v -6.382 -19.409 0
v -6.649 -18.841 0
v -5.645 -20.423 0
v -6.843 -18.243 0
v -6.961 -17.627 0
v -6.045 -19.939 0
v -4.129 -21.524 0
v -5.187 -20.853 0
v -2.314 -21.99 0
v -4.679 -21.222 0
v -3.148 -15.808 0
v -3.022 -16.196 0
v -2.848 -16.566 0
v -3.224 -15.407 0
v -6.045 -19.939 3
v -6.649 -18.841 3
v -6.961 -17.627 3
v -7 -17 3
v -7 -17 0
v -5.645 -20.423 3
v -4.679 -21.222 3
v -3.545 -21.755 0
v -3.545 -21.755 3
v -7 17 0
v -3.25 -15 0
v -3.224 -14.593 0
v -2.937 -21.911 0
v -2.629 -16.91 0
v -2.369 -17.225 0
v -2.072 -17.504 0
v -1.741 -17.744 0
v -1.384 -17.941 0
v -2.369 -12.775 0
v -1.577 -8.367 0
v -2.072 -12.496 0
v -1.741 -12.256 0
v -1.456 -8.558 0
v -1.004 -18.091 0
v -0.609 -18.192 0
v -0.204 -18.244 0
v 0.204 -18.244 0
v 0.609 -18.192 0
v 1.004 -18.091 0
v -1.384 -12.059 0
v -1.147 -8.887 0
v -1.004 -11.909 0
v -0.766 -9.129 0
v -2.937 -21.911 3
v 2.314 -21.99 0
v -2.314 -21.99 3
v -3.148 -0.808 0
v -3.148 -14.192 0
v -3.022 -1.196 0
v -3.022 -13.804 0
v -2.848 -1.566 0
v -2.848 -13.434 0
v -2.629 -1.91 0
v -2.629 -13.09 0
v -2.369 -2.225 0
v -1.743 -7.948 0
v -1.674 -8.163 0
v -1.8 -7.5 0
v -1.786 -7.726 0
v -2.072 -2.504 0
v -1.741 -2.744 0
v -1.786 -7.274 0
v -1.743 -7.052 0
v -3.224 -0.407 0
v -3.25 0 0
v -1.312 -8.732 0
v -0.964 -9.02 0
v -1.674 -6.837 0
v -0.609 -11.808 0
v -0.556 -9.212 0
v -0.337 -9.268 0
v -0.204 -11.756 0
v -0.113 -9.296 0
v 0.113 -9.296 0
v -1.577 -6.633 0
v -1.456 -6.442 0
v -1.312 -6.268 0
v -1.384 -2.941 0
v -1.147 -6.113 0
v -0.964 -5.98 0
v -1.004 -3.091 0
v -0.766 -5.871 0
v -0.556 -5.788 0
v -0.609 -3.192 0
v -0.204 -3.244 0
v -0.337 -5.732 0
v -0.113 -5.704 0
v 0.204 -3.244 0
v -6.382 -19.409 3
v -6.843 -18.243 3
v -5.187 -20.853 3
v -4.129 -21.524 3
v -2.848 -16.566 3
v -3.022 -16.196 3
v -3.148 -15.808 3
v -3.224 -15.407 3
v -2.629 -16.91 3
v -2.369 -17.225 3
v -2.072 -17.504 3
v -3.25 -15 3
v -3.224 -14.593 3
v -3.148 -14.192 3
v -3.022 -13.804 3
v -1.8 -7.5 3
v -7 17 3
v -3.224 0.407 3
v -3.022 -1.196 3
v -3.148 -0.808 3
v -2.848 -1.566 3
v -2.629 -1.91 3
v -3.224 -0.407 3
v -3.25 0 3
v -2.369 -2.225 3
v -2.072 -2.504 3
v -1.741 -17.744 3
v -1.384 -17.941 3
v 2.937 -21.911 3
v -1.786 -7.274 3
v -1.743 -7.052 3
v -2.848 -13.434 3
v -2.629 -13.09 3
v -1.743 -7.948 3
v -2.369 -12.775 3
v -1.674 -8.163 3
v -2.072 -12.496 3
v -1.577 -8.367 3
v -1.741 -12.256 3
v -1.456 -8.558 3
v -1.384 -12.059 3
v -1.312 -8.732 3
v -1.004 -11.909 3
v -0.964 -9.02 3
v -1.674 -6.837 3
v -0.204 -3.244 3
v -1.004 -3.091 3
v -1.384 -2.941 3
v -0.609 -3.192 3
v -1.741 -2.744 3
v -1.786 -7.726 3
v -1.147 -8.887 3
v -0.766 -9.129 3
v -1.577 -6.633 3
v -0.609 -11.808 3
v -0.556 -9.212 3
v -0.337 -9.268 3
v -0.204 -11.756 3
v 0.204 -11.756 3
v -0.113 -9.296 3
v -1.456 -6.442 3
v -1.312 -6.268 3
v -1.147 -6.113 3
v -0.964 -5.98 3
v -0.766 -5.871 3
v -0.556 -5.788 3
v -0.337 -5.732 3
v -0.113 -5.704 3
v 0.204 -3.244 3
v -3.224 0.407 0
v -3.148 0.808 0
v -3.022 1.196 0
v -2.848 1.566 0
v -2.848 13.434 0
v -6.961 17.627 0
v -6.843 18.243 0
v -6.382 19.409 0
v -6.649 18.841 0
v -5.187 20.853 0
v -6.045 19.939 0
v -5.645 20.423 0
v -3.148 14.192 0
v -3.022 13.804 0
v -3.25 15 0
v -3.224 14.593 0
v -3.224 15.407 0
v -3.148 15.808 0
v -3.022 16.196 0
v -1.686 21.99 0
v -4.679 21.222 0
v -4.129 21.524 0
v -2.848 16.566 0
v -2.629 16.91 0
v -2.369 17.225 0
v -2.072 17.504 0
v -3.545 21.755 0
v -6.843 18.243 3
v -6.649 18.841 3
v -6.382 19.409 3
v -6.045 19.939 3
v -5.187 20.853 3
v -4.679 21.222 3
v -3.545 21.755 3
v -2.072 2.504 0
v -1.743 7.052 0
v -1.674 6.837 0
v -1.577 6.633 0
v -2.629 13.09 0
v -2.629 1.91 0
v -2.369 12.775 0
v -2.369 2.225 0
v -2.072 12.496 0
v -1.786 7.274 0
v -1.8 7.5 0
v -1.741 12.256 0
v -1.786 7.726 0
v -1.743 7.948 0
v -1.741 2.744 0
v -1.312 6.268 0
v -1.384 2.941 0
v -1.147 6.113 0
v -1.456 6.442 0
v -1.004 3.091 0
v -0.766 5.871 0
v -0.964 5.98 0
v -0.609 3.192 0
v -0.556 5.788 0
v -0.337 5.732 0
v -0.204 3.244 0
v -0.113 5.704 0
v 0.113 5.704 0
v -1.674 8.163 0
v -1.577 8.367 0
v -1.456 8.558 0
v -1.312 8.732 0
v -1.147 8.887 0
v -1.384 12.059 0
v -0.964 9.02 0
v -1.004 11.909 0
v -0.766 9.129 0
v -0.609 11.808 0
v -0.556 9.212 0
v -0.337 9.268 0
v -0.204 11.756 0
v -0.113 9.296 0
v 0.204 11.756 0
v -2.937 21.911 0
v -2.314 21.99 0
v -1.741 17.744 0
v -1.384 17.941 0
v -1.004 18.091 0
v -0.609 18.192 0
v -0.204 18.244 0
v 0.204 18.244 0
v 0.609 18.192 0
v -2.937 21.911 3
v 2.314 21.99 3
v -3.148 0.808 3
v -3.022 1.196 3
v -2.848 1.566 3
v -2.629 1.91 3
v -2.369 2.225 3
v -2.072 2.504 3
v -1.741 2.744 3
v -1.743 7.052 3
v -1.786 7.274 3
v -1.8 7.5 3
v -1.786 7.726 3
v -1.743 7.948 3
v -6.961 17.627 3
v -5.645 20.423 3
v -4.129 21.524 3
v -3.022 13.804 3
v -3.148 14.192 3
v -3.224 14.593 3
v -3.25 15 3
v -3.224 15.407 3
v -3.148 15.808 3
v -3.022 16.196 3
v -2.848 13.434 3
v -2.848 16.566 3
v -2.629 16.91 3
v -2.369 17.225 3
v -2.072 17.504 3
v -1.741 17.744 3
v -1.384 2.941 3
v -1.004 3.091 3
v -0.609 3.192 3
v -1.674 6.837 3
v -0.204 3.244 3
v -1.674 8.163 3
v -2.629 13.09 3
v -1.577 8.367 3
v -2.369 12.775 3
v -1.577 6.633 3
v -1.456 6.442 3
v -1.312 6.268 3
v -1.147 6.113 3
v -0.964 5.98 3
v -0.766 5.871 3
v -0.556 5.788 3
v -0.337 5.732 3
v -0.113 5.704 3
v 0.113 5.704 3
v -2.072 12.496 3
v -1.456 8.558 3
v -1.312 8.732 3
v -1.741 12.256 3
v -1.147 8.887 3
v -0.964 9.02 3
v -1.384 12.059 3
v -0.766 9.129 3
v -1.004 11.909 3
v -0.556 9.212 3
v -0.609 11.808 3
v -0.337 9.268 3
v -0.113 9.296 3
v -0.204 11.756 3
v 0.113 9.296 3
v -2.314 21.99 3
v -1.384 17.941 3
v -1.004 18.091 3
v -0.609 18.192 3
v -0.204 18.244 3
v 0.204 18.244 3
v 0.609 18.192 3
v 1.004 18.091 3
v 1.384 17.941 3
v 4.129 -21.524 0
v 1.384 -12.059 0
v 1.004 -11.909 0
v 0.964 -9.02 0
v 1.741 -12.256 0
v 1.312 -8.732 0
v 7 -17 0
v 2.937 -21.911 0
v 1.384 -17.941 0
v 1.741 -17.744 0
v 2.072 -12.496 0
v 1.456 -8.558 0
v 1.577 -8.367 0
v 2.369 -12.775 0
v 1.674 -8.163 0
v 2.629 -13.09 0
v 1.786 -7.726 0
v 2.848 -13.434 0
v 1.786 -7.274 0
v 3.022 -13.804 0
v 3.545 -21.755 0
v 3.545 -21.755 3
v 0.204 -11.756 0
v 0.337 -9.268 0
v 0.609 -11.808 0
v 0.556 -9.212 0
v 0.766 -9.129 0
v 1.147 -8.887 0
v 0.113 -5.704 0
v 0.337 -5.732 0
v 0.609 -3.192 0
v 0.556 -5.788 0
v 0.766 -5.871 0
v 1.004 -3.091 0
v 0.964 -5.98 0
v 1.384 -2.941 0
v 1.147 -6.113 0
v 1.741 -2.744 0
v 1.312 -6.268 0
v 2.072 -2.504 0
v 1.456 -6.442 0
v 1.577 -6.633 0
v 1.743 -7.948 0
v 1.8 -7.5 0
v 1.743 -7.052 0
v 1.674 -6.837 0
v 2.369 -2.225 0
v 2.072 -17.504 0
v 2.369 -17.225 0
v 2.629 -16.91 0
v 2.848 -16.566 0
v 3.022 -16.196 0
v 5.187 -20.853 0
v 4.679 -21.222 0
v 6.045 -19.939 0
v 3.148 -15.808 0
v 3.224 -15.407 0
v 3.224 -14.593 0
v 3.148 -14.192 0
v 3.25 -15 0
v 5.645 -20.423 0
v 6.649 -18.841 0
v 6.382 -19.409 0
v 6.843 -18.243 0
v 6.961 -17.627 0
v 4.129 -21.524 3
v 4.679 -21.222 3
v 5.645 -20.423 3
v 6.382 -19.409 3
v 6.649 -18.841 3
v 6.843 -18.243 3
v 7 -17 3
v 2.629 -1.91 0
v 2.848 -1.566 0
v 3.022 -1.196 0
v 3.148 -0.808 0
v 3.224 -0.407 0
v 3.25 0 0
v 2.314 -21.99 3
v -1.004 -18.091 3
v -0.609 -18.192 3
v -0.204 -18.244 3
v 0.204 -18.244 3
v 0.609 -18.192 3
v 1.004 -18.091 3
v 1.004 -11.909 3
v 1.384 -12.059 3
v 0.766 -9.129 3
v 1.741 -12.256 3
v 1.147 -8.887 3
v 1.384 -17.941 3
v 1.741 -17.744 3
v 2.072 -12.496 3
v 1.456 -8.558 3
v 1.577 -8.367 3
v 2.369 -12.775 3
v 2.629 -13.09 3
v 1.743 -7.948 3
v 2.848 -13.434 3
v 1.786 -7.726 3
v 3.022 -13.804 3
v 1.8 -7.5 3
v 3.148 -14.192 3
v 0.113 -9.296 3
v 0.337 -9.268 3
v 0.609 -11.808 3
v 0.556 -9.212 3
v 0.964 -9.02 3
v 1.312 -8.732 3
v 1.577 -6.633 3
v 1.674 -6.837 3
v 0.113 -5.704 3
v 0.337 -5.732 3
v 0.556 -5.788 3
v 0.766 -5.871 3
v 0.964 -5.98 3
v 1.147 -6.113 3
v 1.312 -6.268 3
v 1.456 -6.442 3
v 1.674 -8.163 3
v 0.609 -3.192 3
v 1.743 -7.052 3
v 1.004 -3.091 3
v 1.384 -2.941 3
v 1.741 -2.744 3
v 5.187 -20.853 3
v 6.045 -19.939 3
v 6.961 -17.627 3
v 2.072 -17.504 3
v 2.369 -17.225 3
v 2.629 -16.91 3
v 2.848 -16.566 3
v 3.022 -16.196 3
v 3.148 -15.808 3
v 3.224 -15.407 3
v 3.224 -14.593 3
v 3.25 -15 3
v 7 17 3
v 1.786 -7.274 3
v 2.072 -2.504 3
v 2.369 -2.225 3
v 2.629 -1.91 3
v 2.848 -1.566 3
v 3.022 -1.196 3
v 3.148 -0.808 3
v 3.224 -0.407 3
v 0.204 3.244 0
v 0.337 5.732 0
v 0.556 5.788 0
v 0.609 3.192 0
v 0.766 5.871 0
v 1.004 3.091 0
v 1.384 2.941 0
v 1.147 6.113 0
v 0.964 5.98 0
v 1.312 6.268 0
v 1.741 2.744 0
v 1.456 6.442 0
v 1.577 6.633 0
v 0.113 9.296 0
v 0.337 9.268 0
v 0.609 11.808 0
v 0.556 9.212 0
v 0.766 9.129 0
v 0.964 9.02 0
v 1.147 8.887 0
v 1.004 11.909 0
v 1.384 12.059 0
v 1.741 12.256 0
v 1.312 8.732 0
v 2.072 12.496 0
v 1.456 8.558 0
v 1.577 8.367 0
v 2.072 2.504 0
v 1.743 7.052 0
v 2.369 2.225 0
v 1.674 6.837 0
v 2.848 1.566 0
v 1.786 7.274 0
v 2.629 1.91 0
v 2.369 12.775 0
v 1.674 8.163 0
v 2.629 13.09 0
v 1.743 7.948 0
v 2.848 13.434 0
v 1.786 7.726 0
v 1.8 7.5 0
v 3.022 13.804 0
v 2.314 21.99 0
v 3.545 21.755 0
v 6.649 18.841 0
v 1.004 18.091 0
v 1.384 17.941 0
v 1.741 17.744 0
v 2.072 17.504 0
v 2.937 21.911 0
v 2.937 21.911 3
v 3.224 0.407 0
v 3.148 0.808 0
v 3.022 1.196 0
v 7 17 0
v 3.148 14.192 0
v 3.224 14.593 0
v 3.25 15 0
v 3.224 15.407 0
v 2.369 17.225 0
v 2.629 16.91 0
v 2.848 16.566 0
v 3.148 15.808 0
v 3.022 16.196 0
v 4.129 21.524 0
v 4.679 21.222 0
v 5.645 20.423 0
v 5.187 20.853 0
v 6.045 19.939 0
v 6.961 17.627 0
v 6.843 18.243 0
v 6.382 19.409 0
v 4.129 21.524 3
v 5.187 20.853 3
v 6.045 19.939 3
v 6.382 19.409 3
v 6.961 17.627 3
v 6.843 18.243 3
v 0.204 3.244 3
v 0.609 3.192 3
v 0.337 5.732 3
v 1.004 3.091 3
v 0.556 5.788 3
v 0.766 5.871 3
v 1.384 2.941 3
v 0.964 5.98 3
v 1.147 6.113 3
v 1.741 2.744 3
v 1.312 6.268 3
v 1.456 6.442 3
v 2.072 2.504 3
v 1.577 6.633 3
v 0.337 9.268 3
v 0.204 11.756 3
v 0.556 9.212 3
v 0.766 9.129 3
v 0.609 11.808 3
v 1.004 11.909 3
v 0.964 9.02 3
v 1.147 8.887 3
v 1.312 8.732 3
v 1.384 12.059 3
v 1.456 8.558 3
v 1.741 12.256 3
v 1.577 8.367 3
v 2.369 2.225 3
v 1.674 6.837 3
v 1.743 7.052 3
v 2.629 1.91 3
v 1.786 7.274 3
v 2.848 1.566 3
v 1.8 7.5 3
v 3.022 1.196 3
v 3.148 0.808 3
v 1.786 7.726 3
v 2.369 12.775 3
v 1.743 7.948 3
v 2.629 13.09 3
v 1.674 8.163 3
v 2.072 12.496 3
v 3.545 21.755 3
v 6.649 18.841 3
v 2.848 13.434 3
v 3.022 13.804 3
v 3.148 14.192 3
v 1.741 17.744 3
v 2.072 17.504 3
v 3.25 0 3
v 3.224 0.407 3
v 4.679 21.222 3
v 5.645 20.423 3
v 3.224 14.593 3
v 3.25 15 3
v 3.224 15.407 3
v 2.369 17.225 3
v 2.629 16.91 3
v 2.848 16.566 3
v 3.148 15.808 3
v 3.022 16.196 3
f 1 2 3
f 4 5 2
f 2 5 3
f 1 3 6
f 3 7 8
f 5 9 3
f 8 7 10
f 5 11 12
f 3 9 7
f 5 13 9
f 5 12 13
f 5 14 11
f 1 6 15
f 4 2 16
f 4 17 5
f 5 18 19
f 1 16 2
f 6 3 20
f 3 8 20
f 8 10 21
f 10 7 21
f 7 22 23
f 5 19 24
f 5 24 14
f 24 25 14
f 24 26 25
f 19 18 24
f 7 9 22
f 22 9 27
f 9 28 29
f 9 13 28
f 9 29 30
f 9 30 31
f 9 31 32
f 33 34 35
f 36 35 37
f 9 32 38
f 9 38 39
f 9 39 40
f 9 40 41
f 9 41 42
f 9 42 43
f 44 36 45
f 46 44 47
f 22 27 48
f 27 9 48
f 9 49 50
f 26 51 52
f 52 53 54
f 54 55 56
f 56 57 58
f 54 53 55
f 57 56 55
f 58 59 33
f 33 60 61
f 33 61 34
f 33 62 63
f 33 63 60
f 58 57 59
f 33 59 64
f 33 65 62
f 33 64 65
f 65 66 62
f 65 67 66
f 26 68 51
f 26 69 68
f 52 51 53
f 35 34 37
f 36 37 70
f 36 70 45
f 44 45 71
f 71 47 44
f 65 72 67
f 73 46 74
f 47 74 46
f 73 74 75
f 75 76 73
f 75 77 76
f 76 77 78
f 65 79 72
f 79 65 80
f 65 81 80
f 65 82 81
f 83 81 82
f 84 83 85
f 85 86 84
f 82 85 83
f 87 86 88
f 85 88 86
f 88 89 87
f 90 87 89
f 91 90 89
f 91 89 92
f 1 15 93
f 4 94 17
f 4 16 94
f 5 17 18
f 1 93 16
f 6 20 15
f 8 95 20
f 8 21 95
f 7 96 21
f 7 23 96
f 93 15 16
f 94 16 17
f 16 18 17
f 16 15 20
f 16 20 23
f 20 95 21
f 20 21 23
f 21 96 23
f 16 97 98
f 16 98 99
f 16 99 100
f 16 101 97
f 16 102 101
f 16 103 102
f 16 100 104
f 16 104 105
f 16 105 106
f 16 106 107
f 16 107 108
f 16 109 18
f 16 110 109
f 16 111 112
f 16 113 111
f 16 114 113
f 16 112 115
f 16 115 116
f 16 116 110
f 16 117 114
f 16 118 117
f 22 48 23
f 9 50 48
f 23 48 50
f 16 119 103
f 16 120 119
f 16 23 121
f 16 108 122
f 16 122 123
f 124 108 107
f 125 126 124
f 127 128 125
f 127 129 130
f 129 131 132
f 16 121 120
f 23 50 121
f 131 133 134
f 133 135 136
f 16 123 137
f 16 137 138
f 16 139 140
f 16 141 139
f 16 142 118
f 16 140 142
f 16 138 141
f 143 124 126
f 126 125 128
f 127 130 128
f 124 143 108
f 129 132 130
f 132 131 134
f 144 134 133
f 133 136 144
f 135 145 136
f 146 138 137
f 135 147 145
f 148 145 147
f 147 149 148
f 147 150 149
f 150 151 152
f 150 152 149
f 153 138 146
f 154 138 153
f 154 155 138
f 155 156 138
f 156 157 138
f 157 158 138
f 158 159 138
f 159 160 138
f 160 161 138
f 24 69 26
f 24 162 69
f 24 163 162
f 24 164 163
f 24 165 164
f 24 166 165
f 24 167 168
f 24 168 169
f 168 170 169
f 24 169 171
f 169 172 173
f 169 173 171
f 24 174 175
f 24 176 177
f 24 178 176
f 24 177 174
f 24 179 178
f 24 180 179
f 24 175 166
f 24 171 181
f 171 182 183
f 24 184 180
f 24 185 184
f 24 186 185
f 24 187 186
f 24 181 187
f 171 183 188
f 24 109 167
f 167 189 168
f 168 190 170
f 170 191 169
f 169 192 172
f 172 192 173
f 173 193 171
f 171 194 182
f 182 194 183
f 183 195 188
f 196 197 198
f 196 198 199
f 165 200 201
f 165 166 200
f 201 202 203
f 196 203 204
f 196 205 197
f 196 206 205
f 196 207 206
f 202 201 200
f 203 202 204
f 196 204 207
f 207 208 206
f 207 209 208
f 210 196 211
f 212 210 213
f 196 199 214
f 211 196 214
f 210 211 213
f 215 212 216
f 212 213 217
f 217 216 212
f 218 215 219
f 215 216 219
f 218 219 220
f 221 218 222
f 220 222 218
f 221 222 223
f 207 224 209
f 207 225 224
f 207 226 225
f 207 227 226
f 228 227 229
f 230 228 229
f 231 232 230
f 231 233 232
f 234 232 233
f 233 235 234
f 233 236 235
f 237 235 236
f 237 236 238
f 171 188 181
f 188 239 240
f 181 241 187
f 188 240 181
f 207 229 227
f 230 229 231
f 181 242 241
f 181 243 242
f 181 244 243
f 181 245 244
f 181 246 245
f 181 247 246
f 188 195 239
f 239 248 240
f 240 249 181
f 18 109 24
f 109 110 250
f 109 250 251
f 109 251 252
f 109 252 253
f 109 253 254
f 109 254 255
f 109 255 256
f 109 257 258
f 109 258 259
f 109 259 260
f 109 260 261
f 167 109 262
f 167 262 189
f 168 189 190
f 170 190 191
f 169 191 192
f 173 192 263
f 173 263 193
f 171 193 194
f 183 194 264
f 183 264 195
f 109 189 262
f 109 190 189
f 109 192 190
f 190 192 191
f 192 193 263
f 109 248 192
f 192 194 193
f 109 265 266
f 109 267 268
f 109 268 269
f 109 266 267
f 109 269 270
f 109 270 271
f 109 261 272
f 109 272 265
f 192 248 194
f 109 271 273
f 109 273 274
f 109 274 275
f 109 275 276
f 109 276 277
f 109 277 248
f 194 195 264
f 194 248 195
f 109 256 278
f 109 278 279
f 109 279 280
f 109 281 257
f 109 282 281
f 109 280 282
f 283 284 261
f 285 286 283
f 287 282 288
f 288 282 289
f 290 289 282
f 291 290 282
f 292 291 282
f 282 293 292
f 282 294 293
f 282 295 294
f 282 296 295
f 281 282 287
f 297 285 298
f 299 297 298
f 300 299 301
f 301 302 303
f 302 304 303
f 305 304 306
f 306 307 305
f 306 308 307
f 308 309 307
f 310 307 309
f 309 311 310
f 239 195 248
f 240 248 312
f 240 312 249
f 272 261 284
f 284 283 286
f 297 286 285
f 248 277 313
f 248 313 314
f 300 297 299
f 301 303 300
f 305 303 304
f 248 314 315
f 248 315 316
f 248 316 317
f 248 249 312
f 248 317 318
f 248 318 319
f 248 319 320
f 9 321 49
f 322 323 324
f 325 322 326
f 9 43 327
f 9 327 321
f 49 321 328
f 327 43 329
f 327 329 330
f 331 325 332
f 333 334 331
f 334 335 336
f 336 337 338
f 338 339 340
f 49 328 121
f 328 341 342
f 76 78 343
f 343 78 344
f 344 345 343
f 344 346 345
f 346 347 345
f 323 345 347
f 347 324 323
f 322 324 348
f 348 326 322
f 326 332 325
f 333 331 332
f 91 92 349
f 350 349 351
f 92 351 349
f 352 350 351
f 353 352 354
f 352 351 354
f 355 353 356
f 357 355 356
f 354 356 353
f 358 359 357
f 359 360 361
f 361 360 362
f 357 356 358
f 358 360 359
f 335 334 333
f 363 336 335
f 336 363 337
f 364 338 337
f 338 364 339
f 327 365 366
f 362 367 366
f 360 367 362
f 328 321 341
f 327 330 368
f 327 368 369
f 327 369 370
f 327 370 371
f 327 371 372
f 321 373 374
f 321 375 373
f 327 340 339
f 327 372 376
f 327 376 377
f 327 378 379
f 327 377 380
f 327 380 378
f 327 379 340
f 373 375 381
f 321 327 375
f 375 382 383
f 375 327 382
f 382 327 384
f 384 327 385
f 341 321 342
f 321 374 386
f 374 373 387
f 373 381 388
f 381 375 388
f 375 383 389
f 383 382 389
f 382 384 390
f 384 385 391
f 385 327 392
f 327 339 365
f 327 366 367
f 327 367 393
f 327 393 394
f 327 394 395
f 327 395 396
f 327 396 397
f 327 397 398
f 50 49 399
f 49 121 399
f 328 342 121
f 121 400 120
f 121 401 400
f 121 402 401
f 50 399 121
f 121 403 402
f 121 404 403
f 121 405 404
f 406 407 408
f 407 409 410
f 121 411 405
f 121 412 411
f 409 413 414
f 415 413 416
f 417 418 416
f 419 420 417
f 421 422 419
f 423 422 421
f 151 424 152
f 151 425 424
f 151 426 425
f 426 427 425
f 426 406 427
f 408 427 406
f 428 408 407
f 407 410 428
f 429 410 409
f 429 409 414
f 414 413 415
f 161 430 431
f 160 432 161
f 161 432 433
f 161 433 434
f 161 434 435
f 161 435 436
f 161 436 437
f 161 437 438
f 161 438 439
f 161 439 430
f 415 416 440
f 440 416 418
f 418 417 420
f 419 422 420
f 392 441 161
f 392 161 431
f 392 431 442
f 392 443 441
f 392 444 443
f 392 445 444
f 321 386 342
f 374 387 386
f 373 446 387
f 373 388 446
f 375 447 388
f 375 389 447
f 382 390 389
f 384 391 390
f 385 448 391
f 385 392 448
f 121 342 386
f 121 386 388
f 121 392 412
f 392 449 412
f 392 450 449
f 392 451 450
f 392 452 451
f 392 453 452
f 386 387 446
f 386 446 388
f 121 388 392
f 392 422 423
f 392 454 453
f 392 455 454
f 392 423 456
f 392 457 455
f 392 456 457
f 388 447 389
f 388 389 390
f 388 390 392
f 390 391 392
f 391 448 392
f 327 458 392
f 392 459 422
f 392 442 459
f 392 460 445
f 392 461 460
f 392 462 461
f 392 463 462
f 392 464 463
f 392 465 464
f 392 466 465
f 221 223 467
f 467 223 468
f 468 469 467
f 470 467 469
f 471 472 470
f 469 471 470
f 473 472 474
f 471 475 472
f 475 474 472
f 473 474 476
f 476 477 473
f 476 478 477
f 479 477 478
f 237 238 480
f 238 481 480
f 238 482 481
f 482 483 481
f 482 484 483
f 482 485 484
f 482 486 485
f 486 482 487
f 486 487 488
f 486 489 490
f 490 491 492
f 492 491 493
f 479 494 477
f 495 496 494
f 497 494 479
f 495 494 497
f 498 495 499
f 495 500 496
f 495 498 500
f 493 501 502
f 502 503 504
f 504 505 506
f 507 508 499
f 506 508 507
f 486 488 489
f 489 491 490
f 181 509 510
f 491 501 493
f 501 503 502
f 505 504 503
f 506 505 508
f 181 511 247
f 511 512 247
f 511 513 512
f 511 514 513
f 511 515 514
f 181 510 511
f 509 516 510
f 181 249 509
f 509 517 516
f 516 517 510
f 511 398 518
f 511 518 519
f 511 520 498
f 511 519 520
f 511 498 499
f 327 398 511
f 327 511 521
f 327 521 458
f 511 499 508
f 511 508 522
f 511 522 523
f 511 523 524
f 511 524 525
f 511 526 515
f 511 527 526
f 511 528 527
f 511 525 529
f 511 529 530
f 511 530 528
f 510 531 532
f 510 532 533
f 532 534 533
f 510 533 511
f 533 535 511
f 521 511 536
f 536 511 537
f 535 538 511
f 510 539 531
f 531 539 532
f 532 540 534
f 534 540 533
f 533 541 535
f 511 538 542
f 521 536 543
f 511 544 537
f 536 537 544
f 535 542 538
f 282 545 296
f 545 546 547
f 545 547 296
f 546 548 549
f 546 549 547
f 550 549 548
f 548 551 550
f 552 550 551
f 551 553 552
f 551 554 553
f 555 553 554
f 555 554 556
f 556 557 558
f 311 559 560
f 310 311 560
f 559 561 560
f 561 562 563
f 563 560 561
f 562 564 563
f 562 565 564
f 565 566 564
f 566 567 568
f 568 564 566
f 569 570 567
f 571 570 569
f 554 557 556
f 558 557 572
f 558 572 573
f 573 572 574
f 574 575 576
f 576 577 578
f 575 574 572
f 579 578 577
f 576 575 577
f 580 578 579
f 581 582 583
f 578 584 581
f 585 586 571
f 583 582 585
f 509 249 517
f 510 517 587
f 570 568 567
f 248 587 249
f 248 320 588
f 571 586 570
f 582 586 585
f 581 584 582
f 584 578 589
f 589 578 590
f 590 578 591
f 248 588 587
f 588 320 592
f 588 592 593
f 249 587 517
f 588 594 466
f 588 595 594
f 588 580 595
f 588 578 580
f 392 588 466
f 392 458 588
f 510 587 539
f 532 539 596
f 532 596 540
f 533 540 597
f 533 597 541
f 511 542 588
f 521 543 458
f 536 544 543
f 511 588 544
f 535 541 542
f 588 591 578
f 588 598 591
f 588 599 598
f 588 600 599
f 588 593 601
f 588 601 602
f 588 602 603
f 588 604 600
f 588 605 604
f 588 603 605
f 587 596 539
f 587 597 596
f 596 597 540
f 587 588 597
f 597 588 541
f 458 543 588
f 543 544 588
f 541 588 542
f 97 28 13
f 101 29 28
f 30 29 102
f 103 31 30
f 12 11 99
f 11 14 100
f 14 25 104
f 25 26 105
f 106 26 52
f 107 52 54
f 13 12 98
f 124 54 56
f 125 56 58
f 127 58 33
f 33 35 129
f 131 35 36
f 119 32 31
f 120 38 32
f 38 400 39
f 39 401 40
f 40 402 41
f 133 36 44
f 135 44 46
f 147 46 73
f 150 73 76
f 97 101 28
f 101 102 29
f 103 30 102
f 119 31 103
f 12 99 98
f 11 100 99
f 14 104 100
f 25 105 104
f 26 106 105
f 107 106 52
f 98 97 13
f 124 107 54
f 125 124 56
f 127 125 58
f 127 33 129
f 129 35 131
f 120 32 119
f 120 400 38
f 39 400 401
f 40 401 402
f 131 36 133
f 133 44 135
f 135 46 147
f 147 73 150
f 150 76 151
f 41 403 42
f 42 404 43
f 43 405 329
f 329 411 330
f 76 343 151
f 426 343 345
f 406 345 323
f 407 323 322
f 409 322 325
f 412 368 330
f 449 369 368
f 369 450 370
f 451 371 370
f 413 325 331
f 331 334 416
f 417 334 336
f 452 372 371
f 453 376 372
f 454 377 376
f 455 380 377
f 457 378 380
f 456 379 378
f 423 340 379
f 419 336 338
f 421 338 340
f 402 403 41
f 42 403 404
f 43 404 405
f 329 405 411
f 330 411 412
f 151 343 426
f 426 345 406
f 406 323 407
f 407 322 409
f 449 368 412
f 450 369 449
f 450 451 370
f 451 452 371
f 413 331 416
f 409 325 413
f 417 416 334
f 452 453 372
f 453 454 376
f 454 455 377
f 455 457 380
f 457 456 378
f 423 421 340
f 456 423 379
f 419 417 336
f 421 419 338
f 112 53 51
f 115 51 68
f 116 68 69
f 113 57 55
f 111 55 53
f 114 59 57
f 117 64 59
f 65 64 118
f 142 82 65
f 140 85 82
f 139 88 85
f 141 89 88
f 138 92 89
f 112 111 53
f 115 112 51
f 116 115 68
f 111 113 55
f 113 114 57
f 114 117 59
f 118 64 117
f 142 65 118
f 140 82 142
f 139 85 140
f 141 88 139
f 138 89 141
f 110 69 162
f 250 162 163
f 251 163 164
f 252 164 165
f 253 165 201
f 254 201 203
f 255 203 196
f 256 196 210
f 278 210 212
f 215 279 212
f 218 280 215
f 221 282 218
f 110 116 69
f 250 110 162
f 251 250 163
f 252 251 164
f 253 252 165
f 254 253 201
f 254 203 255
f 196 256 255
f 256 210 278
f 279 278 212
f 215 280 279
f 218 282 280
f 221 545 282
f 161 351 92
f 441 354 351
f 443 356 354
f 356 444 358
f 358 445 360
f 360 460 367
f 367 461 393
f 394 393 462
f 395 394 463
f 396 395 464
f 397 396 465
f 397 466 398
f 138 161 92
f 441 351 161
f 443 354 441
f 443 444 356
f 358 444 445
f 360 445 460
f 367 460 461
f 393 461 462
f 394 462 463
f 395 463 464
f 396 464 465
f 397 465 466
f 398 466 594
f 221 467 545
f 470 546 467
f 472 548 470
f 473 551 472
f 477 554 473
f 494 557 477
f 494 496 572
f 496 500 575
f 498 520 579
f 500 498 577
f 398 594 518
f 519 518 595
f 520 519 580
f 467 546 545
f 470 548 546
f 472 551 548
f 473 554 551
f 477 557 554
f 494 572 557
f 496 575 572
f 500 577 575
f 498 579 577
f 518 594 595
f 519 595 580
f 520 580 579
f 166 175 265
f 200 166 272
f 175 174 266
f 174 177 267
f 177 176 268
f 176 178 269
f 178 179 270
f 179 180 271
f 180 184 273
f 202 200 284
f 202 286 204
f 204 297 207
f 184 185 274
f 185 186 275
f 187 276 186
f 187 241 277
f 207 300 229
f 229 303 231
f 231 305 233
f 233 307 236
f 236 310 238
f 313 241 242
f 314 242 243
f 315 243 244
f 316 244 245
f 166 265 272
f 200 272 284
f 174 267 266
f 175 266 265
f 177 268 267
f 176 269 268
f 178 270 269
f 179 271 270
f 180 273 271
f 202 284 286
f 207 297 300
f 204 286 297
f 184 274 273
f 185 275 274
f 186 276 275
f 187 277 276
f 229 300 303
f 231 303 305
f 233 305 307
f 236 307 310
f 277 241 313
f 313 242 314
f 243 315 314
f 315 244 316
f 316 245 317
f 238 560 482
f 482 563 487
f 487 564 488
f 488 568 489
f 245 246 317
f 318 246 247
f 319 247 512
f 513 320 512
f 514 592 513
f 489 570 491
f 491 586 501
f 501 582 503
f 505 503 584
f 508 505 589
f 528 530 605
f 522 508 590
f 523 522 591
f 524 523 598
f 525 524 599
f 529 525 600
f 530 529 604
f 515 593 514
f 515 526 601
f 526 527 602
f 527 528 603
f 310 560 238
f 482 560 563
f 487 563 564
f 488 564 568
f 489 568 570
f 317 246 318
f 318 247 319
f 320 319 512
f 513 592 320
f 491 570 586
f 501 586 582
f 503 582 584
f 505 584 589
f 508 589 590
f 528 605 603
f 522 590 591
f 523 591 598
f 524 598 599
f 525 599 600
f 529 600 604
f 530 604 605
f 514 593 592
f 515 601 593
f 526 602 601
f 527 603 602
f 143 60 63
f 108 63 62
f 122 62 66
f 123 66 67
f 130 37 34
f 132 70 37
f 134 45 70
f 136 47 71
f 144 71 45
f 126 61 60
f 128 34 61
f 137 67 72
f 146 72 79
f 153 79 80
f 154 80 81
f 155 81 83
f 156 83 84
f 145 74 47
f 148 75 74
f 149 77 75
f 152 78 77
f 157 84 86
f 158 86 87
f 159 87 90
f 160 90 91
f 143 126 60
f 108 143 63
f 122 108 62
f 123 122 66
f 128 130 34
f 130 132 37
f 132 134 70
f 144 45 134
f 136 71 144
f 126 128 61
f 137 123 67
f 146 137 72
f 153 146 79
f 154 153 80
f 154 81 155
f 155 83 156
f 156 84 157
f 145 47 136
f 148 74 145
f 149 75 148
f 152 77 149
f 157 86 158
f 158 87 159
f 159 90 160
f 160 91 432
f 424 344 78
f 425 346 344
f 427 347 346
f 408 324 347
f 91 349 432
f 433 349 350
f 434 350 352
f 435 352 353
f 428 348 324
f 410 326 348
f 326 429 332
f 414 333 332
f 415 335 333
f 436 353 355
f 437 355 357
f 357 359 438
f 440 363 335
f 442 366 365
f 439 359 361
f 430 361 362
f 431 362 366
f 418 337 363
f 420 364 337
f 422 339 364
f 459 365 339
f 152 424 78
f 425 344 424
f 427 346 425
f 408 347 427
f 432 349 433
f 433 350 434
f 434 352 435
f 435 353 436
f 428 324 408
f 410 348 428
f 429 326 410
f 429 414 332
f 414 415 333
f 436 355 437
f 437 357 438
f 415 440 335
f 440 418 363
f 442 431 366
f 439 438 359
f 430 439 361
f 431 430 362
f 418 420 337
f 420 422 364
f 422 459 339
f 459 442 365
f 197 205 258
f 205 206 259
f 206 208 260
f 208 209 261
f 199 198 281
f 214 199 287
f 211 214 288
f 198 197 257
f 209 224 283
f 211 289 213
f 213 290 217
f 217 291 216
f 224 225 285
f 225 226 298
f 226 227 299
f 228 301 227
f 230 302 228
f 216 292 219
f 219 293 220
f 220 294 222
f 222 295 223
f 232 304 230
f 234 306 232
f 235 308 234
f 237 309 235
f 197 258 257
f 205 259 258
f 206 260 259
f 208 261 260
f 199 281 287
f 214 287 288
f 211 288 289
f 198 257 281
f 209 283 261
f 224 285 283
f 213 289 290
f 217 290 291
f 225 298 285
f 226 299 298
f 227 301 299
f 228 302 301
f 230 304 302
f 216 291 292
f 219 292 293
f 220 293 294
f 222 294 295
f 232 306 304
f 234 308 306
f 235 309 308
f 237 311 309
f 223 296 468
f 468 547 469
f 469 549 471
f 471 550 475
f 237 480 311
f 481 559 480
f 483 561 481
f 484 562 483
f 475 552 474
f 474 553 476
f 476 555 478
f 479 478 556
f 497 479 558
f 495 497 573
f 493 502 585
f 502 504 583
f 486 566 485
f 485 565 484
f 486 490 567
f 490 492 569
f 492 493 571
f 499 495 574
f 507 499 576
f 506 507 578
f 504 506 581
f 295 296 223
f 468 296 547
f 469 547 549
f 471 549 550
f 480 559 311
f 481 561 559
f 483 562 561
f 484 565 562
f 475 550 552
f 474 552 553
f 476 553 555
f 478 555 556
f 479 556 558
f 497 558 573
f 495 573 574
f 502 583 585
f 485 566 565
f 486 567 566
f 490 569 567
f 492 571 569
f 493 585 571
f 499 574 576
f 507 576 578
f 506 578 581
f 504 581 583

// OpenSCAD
$fn = 50;

difference() {
	union() {
		hull() {
			translate(v = [-2.0, 17.0, 0]) {
				cylinder(h = 3, r = 5);
			}
			translate(v = [2.0, 17.0, 0]) {
				cylinder(h = 3, r = 5);
			}
			translate(v = [-2.0, -17.0, 0]) {
				cylinder(h = 3, r = 5);
			}
			translate(v = [2.0, -17.0, 0]) {
				cylinder(h = 3, r = 5);
			}
		}
	}
	union() {
		translate(v = [0.0, -15.0, 0]) {
			translate(v = [0, 0, -100]) {
				cylinder(h = 200, r = 3.25);
			}
		}
		translate(v = [0, 0, -100]) {
			cylinder(h = 200, r = 3.25);
		}
		translate(v = [0.0, 15.0, 0]) {
			translate(v = [0, 0, -100]) {
				cylinder(h = 200, r = 3.25);
			}
		}
		translate(v = [0.0, -15.0, 0]) {
			translate(v = [0, 0, -100]) {
				cylinder(h = 200, r = 1.8);
			}
		}
		translate(v = [0.0, -7.5, 0]) {
			translate(v = [0, 0, -100]) {
				cylinder(h = 200, r = 1.8);
			}
		}
		translate(v = [0, 0, -100]) {
			cylinder(h = 200, r = 1.8);
		}
		translate(v = [0.0, 7.5, 0]) {
			translate(v = [0, 0, -100]) {
				cylinder(h = 200, r = 1.8);
			}
		}
		translate(v = [0.0, 15.0, 0]) {
			translate(v = [0, 0, -100]) {
				cylinder(h = 200, r = 1.8);
			}
		}
	}
}
